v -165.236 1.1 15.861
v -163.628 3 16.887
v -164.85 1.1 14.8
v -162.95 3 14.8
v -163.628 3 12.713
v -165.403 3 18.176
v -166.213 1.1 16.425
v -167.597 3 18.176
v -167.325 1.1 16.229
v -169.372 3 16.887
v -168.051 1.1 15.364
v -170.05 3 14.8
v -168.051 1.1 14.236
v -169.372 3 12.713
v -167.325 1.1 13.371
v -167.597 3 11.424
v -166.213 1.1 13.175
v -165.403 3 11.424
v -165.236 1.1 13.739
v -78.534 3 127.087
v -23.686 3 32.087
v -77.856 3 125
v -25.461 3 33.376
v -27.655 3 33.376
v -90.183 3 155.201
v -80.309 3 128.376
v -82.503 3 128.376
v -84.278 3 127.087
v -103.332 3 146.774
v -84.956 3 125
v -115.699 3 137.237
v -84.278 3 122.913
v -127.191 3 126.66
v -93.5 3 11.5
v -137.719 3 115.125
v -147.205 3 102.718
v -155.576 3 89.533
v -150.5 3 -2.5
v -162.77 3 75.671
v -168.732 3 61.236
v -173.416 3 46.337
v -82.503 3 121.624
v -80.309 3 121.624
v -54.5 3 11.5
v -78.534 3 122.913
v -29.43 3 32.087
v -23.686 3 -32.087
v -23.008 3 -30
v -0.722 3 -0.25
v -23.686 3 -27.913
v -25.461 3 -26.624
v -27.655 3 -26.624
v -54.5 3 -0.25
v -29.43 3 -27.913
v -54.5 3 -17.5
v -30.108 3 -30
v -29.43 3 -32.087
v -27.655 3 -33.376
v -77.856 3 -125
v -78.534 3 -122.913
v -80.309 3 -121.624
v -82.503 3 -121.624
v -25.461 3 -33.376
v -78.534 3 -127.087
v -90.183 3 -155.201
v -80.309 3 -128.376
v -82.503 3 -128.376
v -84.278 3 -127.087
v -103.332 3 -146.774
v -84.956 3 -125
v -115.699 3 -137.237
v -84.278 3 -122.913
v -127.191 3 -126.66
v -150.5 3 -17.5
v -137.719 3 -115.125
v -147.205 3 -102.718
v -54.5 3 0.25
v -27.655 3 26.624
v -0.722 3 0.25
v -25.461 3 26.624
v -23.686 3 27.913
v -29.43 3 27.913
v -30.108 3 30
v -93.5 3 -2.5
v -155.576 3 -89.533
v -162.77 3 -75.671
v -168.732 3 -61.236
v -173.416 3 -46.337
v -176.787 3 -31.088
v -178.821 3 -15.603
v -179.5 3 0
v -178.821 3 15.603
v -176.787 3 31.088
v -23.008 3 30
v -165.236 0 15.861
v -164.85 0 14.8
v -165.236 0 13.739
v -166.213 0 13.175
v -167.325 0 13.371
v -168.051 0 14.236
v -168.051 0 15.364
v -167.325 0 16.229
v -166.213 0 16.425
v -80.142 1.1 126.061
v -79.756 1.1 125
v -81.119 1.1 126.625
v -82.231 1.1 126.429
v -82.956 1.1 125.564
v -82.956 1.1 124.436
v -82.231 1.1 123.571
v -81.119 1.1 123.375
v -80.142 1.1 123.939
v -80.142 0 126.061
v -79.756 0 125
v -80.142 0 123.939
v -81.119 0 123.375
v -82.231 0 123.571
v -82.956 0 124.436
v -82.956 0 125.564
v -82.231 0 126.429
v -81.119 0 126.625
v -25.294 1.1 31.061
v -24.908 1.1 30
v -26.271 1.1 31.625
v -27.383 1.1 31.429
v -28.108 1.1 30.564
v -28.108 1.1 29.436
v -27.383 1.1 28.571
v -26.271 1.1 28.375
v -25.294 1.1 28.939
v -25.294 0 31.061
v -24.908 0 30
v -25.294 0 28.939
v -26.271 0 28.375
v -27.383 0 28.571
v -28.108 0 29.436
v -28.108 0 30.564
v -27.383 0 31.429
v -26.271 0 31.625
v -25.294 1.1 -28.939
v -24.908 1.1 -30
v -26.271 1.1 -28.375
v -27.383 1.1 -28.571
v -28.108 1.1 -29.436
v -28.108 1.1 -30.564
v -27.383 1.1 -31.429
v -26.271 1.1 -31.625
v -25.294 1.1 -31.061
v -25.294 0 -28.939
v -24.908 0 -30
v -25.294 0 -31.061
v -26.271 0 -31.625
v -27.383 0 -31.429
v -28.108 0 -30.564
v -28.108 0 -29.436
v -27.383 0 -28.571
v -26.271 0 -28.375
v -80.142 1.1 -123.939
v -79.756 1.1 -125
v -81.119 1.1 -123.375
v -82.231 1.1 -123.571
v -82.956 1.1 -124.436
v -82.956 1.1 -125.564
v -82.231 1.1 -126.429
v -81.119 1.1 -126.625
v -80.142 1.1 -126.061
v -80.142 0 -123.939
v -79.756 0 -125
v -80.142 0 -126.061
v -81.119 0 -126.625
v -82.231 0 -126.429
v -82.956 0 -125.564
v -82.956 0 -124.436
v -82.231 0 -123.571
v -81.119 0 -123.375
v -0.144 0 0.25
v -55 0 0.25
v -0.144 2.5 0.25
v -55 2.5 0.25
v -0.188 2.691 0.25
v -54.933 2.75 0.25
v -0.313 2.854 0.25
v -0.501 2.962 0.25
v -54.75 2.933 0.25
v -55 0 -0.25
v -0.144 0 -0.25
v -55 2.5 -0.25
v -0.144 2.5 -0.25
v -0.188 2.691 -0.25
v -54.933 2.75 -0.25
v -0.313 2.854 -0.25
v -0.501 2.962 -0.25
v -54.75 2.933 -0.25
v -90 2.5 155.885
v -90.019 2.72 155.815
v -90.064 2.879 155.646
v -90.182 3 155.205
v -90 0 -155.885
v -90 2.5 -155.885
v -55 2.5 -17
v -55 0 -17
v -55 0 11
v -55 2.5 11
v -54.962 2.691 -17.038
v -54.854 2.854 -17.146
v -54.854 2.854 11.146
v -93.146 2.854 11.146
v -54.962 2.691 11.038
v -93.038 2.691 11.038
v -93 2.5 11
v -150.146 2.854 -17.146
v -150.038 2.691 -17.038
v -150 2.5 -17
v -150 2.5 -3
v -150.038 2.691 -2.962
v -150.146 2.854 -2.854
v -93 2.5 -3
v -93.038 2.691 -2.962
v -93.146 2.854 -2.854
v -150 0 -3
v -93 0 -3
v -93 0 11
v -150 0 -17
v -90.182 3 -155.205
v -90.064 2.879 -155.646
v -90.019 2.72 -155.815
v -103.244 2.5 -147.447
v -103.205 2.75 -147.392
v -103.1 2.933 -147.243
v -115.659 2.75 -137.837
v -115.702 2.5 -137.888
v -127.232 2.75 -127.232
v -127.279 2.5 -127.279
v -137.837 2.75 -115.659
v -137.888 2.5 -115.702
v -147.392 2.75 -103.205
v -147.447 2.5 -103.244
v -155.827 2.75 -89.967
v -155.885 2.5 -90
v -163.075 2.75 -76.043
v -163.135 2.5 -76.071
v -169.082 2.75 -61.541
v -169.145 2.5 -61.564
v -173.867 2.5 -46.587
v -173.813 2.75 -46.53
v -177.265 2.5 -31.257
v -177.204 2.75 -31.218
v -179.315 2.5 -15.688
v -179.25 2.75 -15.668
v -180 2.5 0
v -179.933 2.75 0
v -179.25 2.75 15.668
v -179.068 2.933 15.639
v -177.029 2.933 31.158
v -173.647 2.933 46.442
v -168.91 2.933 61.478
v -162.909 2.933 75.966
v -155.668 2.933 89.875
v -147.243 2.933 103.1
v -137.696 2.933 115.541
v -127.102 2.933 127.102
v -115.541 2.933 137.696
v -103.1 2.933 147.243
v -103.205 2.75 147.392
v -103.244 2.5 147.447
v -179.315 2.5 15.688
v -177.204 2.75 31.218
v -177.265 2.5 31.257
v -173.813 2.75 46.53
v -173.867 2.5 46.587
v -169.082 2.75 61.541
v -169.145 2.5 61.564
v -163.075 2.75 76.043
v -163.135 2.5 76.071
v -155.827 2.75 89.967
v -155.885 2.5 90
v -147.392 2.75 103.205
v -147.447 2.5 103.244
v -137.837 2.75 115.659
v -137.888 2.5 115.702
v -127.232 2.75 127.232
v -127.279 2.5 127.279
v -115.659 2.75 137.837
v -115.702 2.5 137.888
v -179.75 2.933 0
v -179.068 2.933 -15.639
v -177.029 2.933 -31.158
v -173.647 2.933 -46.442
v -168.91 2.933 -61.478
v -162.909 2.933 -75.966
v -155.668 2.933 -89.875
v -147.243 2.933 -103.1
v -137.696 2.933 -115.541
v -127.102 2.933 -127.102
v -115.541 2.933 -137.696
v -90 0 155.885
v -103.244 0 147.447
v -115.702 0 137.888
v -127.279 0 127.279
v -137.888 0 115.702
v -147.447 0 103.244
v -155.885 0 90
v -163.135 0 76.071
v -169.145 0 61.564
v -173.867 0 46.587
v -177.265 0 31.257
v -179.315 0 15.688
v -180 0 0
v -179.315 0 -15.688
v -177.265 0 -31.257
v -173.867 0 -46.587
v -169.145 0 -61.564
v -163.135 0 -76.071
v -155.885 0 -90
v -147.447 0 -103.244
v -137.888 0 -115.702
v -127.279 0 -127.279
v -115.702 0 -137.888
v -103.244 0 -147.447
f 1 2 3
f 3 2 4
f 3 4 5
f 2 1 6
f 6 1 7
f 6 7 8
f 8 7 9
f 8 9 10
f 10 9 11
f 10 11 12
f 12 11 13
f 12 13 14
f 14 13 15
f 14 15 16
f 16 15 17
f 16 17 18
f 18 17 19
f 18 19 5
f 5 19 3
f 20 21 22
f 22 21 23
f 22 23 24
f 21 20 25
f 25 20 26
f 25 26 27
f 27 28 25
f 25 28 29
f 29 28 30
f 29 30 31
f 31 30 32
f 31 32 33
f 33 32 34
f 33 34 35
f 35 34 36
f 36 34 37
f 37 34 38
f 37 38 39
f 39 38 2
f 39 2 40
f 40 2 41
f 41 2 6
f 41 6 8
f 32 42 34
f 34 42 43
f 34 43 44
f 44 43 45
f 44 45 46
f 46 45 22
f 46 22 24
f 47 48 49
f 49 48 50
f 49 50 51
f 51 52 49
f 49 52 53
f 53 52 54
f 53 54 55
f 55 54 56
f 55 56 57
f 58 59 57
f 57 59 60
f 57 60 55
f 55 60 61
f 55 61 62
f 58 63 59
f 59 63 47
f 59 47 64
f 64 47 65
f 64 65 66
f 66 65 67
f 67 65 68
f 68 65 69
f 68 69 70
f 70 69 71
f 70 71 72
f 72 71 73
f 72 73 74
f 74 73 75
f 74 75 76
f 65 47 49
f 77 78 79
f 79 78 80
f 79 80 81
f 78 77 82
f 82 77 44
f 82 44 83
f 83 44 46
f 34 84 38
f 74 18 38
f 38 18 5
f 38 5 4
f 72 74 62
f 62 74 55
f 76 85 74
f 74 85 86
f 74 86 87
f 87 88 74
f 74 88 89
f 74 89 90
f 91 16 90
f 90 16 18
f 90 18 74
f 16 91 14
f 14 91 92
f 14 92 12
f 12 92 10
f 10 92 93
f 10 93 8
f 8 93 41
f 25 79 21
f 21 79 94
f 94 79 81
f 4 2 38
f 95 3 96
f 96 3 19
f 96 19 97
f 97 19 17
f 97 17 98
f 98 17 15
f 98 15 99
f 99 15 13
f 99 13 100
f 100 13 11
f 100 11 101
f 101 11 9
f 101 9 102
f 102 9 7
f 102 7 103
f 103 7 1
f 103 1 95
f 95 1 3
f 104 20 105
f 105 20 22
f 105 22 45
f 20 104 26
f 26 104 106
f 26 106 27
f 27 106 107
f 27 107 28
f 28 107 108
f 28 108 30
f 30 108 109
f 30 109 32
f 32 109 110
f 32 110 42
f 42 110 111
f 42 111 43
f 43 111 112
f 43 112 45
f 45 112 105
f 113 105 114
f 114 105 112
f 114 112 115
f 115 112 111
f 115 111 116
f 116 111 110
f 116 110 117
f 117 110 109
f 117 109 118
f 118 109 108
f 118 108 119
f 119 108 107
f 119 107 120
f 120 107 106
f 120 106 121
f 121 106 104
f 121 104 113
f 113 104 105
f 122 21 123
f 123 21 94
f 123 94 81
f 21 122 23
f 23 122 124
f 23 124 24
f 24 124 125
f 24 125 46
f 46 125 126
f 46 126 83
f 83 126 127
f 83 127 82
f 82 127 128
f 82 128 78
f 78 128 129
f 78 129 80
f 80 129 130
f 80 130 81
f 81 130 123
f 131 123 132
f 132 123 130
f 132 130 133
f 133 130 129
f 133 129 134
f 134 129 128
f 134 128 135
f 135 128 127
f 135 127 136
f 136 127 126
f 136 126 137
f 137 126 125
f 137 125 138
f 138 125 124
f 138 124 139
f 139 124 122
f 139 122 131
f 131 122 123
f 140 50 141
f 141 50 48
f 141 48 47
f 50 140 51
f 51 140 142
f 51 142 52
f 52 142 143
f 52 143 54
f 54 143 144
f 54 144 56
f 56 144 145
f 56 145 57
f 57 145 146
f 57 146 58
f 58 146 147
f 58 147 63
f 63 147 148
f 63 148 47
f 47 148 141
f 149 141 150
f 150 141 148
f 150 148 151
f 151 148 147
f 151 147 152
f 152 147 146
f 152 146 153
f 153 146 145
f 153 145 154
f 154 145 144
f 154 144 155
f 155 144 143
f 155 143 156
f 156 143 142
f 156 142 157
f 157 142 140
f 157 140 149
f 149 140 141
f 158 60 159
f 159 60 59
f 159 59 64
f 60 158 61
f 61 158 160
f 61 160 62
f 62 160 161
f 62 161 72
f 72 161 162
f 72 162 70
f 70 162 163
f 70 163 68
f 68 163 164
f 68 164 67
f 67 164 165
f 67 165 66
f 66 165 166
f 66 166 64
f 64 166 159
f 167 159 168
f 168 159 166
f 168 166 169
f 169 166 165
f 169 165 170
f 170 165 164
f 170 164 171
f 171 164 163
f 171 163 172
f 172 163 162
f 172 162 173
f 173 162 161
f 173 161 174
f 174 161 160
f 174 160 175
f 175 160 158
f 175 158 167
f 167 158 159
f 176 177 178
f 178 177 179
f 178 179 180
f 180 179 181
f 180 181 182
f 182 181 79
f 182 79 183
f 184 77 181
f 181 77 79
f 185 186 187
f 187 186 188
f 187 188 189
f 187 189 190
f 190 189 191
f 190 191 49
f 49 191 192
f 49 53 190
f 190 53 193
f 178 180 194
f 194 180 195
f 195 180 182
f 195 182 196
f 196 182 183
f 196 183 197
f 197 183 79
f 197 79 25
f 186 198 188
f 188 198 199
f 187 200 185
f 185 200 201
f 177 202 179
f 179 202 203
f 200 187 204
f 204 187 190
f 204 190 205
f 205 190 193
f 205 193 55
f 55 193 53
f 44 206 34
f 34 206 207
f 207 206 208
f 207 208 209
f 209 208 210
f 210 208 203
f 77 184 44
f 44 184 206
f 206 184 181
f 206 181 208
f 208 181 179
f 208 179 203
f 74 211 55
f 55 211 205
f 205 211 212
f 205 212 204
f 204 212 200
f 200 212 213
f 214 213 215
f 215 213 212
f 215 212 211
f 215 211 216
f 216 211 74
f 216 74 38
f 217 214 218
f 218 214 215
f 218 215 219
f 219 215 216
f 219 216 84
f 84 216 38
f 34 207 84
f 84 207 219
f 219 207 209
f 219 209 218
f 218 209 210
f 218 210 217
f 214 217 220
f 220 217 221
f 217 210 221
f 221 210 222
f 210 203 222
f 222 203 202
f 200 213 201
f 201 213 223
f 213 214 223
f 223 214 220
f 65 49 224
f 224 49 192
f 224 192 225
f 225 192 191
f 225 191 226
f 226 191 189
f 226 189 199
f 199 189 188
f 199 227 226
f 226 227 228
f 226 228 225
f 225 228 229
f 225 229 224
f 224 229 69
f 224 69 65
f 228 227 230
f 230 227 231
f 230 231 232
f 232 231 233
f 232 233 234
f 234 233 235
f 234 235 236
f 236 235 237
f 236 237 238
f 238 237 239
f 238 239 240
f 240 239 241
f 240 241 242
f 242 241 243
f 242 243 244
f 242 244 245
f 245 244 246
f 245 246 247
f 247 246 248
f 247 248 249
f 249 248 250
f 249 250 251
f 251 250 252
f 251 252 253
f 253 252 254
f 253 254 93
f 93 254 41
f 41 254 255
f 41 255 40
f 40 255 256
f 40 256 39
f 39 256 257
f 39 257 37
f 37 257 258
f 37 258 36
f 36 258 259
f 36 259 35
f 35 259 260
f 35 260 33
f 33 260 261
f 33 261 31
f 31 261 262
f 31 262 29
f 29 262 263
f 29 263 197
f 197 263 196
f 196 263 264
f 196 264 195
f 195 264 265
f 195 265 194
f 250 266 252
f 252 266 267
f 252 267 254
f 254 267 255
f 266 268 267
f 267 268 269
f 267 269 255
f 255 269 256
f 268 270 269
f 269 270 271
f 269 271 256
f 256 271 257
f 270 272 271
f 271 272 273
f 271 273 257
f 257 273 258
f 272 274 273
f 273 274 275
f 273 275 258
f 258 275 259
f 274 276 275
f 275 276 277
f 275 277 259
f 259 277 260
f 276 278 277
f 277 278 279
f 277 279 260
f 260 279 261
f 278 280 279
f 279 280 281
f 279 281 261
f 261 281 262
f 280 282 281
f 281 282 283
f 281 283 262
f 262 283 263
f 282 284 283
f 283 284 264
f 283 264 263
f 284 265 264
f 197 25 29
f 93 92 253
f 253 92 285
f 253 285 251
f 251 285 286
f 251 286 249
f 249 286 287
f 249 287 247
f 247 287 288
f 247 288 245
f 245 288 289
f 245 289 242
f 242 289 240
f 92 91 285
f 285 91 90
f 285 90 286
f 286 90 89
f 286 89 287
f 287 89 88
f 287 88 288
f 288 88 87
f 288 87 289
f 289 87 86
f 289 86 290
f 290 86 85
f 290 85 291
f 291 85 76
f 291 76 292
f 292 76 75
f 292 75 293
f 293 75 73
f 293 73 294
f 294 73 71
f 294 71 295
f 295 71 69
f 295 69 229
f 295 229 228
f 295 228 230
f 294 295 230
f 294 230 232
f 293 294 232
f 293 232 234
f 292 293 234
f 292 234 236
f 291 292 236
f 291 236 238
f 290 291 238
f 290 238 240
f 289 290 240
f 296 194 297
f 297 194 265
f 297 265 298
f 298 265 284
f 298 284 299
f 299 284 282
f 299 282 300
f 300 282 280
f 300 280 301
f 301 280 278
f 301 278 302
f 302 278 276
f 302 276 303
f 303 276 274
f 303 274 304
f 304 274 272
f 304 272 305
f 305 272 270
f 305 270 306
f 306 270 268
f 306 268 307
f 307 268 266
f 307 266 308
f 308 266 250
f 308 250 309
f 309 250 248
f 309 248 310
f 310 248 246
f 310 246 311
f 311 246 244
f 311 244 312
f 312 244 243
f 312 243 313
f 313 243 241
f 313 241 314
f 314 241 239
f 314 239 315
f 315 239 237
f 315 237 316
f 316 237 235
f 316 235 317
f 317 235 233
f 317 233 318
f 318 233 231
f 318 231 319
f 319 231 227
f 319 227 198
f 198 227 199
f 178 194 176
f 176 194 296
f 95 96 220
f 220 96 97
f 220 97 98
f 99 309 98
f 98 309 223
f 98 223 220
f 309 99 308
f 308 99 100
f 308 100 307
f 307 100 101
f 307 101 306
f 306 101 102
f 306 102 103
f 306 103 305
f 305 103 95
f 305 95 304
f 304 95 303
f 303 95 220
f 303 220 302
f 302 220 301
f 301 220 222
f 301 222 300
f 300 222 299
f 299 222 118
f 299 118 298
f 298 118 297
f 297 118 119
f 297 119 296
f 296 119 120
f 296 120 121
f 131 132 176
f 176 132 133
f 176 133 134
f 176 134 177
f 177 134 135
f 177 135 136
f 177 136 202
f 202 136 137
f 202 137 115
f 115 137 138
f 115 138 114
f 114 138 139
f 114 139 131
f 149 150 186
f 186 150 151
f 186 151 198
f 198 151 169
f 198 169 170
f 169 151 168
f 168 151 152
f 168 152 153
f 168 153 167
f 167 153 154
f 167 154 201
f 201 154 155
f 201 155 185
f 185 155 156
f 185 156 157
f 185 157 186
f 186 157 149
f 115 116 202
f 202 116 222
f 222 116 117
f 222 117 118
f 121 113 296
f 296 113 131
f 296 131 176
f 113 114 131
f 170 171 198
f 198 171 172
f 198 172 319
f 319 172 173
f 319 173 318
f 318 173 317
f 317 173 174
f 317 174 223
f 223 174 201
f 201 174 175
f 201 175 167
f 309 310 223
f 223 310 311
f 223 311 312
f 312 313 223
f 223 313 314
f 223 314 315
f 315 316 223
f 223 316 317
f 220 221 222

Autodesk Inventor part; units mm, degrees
ref_plane "YZ Plane" through (0, 0, 0) normal (1, 0, 0) x (0, 1, 0)
ref_plane "XZ Plane" through (0, 0, 0) normal (0, 1, 0) x (-1, 0, 0)
ref_plane "XY Plane" through (0, 0, 0) normal (0, 0, 1) x (1, 0, 0)
sketch "Skizze1" plane through (0, 0, 0) normal (0, 1, 0) x (-1, 0, 0)
  line L0 (0, 0) -> (90, 155.8846)
  line L1 (0, 0) -> (90, -155.8846)
  arc A0 (90, -155.8846) -> (90, 155.8846) centre (0, 0) ccw
  line L2 (216, 0) -> (-36, 0) projected
  dimension "d0" = 360
  dimension "d1" = 120
  dimension "d2" = 60
extrude "Extrusion1" add sketch "Skizze1" along normal blind 3
fillet "Rundung1" radius 0.5 3 edges at (-45, 3, 77.9423) (-180, 3, 0) (-45, 3, -77.9423)
sketch "Skizze2" plane through (0, 3, 0) normal (0, 1, 0) x (1, 0, 0)
  line L0 (-150, 3) -> (-93, 3)
  line L1 (-55, 3) -> (-55, 17)
  line L2 (-55, 17) -> (-150, 17)
  line L3 (-150, 17) -> (-150, 3)
  line L4 (-227.898, 0) -> (107.3877, 0) projected
  line L5 (-93, 3) -> (-93, -11)
  line L6 (-93, -11) -> (-55, -11)
  line L7 (-55, -11) -> (-55, 3)
  point P0 (0, 0)
  point P1 (-55, 10)
  point P2 (-150, 10)
  dimension "d6" = 14
  dimension "d7" = 95
  dimension "d8" = 17
  dimension "d10" = 150
  dimension "d13" = 38
  dimension "d14" = 14
extrude "Extrusion2" cut sketch "Skizze2" against normal blind 3
fillet "Rundung2" radius 0.5 6 edges at (-102.5, 3, -17) (-121.5, 3, -3) (-150, 3, -10) (-93, 3, 4) (-74, 3, 11) (-55, 3, -3)
sketch "Skizze3" plane through (0, 3, 0) normal (0, 1, 0) x (1, 0, 0)
  line L0 (0, -0.25) -> (-60, -0.25)
  line L1 (-60, -0.25) -> (-60, 0.25)
  line L2 (-60, 0.25) -> (0, 0.25)
  line L3 (0, 0.25) -> (0, -0.25)
  line L4 (-216, 0) -> (36, 0) projected
  point P0 (0, 0)
  point P1 (0, 0)
  dimension "d16" = 0.5
  dimension "d17" = 0.25
  dimension "d18" = 60
  dimension "d19" = 0
extrude "Extrusion3" cut sketch "Skizze3" against normal blind 3
sketch "Skizze4" plane through (0, 3, 0) normal (0, 1, 0) x (1, 0, 0)
  circle A0 centre (-81.406, -125) radius 1.65
  circle A1 centre (-26.558, -30) radius 1.65
  circle A2 centre (-166.5, -14.8) radius 1.65
  circle A3 centre (-81.406, 125) radius 1.65
  circle A4 centre (-26.558, 30) radius 1.65
  point P0 (0, 0)
  dimension "d26" = 26.558
  dimension "d27" = 26.558
  dimension "d28" = 3.3
  dimension "d29" = 81.406
  dimension "d30" = 81.406
  dimension "d31" = 14.8
  dimension "d32" = 166.5
  dimension "d33" = 125
  dimension "d34" = 30
  dimension "d35" = 30
  dimension "d36" = 125
extrude "Extrusion4" cut sketch "Skizze4" against normal blind 3
chamfer "Fasen1" distance 1.9 angle 45 5 edges at (-83.056, 3, -125) (-28.208, 3, -30) (-28.208, 3, 30) (-83.056, 3, 125) (-168.15, 3, 14.8)
properties part number "cover"
